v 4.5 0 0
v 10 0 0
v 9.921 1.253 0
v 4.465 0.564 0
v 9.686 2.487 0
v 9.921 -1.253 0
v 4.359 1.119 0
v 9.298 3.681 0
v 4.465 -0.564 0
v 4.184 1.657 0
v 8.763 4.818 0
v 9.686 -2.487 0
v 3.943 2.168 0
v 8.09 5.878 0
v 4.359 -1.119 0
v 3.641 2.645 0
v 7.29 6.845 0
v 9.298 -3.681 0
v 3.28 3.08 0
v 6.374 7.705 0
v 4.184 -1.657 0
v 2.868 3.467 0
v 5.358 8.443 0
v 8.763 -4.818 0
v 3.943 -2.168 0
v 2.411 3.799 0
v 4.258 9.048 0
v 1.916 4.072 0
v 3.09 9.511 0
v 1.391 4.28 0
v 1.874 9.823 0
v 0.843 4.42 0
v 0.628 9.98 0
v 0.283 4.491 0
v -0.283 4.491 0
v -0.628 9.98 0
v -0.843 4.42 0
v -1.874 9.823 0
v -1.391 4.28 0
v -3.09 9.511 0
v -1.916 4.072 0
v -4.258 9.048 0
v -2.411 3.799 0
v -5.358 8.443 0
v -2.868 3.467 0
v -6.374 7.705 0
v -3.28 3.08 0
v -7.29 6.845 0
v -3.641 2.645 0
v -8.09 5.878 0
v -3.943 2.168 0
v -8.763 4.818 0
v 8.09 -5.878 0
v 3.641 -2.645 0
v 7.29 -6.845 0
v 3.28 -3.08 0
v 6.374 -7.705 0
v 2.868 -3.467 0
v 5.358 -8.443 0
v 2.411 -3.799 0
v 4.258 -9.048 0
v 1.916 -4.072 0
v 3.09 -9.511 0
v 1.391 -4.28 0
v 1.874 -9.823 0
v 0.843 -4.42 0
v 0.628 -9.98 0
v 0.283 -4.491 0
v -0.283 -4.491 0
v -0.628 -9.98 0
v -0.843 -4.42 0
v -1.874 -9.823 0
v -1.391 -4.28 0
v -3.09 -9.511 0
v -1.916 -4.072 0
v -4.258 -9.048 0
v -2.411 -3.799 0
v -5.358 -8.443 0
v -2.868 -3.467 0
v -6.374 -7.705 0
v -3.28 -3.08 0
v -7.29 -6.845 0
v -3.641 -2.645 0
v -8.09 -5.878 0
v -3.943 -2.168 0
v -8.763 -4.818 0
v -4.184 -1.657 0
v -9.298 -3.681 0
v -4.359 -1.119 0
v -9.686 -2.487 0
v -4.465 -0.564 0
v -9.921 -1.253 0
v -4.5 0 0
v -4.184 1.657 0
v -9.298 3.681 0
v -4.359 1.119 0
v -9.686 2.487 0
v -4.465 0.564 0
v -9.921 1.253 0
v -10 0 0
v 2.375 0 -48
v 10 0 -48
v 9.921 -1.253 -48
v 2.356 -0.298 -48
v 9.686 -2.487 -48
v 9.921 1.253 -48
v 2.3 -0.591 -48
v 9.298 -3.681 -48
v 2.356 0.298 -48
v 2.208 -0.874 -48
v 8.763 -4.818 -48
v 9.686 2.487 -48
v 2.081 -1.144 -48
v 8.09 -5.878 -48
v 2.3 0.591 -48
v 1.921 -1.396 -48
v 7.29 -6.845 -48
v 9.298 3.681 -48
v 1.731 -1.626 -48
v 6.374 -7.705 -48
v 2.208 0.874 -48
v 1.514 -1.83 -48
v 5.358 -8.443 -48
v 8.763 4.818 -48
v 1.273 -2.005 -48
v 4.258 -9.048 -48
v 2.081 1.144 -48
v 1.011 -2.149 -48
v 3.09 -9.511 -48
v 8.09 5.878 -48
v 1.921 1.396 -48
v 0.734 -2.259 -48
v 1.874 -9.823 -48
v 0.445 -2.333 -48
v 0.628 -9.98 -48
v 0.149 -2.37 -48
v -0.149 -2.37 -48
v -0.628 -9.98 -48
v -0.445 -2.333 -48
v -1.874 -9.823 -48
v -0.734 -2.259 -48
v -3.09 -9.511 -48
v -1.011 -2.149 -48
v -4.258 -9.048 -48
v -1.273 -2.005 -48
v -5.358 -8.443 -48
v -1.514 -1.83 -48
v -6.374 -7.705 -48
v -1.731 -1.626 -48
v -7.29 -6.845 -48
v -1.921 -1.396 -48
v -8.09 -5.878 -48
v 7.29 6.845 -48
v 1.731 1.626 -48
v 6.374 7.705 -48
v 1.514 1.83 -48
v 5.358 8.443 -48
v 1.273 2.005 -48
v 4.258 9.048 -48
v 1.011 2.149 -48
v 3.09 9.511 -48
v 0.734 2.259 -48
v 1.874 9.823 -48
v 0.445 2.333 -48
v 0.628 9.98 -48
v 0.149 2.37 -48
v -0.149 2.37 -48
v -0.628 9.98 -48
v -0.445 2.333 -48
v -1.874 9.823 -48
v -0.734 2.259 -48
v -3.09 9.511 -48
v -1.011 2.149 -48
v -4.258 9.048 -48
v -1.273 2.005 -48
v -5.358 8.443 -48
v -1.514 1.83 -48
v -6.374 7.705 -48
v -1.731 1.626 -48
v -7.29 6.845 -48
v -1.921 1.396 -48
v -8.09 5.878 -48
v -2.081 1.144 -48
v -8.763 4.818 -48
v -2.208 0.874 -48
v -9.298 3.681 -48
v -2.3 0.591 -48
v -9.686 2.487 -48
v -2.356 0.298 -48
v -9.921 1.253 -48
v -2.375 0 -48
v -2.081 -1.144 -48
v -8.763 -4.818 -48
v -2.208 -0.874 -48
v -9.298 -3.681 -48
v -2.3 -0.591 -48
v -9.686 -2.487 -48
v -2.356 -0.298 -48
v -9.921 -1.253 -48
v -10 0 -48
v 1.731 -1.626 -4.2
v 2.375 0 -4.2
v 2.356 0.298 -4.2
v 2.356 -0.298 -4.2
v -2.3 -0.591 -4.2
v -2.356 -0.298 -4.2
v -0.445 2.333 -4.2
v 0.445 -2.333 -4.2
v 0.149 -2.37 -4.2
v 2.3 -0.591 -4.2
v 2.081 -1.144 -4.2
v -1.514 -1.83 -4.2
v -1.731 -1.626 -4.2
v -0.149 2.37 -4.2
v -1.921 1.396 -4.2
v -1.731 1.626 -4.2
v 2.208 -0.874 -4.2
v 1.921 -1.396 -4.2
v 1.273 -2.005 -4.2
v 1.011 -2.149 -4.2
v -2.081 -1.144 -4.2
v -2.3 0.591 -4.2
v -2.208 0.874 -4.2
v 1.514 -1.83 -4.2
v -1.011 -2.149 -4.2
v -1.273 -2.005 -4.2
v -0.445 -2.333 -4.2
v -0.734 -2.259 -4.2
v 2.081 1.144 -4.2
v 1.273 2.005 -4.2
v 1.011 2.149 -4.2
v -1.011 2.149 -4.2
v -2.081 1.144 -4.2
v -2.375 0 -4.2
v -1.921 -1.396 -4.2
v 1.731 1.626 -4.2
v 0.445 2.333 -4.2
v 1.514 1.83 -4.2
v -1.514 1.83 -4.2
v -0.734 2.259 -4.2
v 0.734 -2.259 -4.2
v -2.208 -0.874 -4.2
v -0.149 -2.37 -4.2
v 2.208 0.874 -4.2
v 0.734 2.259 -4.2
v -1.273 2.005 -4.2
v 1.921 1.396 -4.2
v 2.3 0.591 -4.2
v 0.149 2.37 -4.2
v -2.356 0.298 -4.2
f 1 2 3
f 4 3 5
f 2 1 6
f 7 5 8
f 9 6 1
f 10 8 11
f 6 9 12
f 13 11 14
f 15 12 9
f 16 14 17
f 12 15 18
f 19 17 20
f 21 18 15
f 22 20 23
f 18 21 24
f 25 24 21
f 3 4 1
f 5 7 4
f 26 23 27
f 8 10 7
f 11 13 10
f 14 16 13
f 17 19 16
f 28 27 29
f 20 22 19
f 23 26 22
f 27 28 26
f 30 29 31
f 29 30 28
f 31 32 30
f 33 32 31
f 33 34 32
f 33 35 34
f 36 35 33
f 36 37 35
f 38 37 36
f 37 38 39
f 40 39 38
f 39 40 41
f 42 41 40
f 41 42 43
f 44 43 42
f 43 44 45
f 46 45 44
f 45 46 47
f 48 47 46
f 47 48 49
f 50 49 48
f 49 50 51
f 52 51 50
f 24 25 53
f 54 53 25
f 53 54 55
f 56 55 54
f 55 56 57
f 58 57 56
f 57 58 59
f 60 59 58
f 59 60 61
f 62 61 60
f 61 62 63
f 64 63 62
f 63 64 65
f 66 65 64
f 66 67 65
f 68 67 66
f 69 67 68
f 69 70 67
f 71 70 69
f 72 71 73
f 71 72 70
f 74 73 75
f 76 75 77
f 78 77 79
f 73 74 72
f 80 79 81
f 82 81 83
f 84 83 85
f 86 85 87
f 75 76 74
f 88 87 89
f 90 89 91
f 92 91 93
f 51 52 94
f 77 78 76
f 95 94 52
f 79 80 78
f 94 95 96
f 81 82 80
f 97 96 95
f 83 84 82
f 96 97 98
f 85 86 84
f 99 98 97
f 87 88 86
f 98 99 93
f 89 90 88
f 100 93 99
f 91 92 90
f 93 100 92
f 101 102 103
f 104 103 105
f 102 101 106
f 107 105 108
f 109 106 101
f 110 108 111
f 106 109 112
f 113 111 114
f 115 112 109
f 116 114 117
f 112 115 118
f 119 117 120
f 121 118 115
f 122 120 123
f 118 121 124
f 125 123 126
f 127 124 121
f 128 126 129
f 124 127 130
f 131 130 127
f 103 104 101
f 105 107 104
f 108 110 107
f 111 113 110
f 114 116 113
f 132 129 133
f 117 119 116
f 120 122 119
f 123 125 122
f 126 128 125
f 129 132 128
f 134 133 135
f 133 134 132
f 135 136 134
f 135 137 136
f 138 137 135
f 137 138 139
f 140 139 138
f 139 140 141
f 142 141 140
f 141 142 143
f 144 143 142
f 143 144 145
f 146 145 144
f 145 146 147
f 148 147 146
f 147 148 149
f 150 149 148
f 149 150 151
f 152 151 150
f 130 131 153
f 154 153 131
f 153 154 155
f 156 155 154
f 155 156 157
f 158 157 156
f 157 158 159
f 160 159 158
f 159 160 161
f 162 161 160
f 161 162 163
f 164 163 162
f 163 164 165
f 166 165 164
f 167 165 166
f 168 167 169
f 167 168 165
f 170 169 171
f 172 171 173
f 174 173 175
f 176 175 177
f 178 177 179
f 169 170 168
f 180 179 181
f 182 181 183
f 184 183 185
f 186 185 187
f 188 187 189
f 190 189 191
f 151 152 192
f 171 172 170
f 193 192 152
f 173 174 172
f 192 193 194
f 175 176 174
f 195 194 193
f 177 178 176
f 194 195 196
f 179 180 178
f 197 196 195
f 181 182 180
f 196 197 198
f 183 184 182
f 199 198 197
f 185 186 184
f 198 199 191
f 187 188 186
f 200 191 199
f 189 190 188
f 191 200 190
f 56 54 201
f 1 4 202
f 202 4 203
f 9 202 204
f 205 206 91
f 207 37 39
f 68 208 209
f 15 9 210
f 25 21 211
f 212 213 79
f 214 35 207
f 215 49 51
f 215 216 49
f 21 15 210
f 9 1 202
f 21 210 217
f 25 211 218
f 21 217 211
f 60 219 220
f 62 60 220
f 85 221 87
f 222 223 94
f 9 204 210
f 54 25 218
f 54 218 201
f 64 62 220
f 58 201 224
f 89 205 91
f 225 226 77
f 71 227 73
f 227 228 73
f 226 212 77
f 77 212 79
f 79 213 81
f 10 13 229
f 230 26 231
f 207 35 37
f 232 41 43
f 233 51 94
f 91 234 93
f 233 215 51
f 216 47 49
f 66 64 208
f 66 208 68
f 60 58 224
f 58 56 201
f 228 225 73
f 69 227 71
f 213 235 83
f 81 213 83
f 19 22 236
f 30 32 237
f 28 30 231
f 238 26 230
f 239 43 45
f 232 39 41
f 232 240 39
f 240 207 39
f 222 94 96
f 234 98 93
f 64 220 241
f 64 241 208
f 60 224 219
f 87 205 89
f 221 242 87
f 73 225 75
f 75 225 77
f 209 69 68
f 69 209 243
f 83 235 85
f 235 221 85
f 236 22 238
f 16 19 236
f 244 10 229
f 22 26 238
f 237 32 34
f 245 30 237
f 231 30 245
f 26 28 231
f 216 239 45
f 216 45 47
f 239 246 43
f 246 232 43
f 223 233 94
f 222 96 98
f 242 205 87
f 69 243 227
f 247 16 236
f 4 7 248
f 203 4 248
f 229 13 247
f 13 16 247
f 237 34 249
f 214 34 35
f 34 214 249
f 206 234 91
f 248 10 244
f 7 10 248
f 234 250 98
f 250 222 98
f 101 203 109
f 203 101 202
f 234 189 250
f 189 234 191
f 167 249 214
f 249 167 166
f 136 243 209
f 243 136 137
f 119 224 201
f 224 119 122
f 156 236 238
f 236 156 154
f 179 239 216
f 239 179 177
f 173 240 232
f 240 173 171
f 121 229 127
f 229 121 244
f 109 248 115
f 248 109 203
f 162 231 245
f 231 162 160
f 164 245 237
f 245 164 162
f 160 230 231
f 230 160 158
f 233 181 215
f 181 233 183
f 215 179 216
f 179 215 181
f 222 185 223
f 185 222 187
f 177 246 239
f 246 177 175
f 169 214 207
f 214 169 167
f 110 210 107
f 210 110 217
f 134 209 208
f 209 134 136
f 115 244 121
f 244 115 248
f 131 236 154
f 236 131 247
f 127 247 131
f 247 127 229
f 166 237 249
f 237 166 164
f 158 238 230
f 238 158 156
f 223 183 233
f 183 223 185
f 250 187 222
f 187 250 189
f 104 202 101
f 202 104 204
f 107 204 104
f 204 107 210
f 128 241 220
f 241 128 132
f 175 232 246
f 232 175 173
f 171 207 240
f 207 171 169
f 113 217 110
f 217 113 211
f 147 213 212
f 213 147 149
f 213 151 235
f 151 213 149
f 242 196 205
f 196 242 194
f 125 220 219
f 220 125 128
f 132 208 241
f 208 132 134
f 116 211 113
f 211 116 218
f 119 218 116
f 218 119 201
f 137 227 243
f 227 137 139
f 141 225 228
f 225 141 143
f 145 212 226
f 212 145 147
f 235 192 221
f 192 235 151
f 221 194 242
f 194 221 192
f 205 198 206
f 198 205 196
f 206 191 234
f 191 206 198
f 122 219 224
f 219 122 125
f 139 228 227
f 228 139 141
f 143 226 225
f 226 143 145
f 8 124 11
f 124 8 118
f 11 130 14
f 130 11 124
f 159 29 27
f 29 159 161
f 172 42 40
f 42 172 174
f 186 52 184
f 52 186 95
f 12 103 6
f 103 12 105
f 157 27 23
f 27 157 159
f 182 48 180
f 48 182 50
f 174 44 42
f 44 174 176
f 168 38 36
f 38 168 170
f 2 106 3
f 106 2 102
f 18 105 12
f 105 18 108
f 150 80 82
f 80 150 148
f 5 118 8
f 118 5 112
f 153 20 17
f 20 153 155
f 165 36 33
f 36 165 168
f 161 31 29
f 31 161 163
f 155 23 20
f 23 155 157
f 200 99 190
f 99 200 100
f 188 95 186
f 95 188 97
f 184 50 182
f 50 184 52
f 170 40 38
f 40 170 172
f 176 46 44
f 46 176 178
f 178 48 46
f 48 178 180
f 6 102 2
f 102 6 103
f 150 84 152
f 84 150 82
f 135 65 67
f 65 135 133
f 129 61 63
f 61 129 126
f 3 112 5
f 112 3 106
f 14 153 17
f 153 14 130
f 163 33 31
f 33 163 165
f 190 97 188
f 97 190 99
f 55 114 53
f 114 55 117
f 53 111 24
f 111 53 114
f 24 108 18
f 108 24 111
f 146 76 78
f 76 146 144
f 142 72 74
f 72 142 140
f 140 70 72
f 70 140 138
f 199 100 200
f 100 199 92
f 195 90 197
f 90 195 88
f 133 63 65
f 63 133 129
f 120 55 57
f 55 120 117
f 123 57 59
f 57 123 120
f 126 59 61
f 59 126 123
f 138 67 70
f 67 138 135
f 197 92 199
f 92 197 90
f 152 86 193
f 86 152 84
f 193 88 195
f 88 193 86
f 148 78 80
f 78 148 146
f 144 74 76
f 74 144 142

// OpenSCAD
$fn = 50;


difference() {
	union() {
		translate(v = [0, 0, -48.0000000000]) {
			cylinder(h = 48, r = 10.0000000000);
		}
		cylinder(h = 0, r = 16.0000000000);
	}
	union() {
		translate(v = [0, 0, 0]) {
			rotate(a = [0, 0, 0]) {
				difference() {
					union() {
						#translate(v = [0, 0, -48.0000000000]) {
							cylinder(h = 48, r = 2.2500000000);
						}
						#translate(v = [0, 0, -4.2000000000]) {
							cylinder(h = 4.2000000000, r = 10.0000000000, r1 = 2.3750000000, r2 = 4.5000000000);
						}
						#translate(v = [0, 0, -48.0000000000]) {
							cylinder(h = 48, r = 2.3750000000);
						}
						#translate(v = [0, 0, -48.0000000000]) {
							cylinder(h = 48, r = 2.2500000000);
						}
					}
					union();
				}
			}
		}
	}
}
